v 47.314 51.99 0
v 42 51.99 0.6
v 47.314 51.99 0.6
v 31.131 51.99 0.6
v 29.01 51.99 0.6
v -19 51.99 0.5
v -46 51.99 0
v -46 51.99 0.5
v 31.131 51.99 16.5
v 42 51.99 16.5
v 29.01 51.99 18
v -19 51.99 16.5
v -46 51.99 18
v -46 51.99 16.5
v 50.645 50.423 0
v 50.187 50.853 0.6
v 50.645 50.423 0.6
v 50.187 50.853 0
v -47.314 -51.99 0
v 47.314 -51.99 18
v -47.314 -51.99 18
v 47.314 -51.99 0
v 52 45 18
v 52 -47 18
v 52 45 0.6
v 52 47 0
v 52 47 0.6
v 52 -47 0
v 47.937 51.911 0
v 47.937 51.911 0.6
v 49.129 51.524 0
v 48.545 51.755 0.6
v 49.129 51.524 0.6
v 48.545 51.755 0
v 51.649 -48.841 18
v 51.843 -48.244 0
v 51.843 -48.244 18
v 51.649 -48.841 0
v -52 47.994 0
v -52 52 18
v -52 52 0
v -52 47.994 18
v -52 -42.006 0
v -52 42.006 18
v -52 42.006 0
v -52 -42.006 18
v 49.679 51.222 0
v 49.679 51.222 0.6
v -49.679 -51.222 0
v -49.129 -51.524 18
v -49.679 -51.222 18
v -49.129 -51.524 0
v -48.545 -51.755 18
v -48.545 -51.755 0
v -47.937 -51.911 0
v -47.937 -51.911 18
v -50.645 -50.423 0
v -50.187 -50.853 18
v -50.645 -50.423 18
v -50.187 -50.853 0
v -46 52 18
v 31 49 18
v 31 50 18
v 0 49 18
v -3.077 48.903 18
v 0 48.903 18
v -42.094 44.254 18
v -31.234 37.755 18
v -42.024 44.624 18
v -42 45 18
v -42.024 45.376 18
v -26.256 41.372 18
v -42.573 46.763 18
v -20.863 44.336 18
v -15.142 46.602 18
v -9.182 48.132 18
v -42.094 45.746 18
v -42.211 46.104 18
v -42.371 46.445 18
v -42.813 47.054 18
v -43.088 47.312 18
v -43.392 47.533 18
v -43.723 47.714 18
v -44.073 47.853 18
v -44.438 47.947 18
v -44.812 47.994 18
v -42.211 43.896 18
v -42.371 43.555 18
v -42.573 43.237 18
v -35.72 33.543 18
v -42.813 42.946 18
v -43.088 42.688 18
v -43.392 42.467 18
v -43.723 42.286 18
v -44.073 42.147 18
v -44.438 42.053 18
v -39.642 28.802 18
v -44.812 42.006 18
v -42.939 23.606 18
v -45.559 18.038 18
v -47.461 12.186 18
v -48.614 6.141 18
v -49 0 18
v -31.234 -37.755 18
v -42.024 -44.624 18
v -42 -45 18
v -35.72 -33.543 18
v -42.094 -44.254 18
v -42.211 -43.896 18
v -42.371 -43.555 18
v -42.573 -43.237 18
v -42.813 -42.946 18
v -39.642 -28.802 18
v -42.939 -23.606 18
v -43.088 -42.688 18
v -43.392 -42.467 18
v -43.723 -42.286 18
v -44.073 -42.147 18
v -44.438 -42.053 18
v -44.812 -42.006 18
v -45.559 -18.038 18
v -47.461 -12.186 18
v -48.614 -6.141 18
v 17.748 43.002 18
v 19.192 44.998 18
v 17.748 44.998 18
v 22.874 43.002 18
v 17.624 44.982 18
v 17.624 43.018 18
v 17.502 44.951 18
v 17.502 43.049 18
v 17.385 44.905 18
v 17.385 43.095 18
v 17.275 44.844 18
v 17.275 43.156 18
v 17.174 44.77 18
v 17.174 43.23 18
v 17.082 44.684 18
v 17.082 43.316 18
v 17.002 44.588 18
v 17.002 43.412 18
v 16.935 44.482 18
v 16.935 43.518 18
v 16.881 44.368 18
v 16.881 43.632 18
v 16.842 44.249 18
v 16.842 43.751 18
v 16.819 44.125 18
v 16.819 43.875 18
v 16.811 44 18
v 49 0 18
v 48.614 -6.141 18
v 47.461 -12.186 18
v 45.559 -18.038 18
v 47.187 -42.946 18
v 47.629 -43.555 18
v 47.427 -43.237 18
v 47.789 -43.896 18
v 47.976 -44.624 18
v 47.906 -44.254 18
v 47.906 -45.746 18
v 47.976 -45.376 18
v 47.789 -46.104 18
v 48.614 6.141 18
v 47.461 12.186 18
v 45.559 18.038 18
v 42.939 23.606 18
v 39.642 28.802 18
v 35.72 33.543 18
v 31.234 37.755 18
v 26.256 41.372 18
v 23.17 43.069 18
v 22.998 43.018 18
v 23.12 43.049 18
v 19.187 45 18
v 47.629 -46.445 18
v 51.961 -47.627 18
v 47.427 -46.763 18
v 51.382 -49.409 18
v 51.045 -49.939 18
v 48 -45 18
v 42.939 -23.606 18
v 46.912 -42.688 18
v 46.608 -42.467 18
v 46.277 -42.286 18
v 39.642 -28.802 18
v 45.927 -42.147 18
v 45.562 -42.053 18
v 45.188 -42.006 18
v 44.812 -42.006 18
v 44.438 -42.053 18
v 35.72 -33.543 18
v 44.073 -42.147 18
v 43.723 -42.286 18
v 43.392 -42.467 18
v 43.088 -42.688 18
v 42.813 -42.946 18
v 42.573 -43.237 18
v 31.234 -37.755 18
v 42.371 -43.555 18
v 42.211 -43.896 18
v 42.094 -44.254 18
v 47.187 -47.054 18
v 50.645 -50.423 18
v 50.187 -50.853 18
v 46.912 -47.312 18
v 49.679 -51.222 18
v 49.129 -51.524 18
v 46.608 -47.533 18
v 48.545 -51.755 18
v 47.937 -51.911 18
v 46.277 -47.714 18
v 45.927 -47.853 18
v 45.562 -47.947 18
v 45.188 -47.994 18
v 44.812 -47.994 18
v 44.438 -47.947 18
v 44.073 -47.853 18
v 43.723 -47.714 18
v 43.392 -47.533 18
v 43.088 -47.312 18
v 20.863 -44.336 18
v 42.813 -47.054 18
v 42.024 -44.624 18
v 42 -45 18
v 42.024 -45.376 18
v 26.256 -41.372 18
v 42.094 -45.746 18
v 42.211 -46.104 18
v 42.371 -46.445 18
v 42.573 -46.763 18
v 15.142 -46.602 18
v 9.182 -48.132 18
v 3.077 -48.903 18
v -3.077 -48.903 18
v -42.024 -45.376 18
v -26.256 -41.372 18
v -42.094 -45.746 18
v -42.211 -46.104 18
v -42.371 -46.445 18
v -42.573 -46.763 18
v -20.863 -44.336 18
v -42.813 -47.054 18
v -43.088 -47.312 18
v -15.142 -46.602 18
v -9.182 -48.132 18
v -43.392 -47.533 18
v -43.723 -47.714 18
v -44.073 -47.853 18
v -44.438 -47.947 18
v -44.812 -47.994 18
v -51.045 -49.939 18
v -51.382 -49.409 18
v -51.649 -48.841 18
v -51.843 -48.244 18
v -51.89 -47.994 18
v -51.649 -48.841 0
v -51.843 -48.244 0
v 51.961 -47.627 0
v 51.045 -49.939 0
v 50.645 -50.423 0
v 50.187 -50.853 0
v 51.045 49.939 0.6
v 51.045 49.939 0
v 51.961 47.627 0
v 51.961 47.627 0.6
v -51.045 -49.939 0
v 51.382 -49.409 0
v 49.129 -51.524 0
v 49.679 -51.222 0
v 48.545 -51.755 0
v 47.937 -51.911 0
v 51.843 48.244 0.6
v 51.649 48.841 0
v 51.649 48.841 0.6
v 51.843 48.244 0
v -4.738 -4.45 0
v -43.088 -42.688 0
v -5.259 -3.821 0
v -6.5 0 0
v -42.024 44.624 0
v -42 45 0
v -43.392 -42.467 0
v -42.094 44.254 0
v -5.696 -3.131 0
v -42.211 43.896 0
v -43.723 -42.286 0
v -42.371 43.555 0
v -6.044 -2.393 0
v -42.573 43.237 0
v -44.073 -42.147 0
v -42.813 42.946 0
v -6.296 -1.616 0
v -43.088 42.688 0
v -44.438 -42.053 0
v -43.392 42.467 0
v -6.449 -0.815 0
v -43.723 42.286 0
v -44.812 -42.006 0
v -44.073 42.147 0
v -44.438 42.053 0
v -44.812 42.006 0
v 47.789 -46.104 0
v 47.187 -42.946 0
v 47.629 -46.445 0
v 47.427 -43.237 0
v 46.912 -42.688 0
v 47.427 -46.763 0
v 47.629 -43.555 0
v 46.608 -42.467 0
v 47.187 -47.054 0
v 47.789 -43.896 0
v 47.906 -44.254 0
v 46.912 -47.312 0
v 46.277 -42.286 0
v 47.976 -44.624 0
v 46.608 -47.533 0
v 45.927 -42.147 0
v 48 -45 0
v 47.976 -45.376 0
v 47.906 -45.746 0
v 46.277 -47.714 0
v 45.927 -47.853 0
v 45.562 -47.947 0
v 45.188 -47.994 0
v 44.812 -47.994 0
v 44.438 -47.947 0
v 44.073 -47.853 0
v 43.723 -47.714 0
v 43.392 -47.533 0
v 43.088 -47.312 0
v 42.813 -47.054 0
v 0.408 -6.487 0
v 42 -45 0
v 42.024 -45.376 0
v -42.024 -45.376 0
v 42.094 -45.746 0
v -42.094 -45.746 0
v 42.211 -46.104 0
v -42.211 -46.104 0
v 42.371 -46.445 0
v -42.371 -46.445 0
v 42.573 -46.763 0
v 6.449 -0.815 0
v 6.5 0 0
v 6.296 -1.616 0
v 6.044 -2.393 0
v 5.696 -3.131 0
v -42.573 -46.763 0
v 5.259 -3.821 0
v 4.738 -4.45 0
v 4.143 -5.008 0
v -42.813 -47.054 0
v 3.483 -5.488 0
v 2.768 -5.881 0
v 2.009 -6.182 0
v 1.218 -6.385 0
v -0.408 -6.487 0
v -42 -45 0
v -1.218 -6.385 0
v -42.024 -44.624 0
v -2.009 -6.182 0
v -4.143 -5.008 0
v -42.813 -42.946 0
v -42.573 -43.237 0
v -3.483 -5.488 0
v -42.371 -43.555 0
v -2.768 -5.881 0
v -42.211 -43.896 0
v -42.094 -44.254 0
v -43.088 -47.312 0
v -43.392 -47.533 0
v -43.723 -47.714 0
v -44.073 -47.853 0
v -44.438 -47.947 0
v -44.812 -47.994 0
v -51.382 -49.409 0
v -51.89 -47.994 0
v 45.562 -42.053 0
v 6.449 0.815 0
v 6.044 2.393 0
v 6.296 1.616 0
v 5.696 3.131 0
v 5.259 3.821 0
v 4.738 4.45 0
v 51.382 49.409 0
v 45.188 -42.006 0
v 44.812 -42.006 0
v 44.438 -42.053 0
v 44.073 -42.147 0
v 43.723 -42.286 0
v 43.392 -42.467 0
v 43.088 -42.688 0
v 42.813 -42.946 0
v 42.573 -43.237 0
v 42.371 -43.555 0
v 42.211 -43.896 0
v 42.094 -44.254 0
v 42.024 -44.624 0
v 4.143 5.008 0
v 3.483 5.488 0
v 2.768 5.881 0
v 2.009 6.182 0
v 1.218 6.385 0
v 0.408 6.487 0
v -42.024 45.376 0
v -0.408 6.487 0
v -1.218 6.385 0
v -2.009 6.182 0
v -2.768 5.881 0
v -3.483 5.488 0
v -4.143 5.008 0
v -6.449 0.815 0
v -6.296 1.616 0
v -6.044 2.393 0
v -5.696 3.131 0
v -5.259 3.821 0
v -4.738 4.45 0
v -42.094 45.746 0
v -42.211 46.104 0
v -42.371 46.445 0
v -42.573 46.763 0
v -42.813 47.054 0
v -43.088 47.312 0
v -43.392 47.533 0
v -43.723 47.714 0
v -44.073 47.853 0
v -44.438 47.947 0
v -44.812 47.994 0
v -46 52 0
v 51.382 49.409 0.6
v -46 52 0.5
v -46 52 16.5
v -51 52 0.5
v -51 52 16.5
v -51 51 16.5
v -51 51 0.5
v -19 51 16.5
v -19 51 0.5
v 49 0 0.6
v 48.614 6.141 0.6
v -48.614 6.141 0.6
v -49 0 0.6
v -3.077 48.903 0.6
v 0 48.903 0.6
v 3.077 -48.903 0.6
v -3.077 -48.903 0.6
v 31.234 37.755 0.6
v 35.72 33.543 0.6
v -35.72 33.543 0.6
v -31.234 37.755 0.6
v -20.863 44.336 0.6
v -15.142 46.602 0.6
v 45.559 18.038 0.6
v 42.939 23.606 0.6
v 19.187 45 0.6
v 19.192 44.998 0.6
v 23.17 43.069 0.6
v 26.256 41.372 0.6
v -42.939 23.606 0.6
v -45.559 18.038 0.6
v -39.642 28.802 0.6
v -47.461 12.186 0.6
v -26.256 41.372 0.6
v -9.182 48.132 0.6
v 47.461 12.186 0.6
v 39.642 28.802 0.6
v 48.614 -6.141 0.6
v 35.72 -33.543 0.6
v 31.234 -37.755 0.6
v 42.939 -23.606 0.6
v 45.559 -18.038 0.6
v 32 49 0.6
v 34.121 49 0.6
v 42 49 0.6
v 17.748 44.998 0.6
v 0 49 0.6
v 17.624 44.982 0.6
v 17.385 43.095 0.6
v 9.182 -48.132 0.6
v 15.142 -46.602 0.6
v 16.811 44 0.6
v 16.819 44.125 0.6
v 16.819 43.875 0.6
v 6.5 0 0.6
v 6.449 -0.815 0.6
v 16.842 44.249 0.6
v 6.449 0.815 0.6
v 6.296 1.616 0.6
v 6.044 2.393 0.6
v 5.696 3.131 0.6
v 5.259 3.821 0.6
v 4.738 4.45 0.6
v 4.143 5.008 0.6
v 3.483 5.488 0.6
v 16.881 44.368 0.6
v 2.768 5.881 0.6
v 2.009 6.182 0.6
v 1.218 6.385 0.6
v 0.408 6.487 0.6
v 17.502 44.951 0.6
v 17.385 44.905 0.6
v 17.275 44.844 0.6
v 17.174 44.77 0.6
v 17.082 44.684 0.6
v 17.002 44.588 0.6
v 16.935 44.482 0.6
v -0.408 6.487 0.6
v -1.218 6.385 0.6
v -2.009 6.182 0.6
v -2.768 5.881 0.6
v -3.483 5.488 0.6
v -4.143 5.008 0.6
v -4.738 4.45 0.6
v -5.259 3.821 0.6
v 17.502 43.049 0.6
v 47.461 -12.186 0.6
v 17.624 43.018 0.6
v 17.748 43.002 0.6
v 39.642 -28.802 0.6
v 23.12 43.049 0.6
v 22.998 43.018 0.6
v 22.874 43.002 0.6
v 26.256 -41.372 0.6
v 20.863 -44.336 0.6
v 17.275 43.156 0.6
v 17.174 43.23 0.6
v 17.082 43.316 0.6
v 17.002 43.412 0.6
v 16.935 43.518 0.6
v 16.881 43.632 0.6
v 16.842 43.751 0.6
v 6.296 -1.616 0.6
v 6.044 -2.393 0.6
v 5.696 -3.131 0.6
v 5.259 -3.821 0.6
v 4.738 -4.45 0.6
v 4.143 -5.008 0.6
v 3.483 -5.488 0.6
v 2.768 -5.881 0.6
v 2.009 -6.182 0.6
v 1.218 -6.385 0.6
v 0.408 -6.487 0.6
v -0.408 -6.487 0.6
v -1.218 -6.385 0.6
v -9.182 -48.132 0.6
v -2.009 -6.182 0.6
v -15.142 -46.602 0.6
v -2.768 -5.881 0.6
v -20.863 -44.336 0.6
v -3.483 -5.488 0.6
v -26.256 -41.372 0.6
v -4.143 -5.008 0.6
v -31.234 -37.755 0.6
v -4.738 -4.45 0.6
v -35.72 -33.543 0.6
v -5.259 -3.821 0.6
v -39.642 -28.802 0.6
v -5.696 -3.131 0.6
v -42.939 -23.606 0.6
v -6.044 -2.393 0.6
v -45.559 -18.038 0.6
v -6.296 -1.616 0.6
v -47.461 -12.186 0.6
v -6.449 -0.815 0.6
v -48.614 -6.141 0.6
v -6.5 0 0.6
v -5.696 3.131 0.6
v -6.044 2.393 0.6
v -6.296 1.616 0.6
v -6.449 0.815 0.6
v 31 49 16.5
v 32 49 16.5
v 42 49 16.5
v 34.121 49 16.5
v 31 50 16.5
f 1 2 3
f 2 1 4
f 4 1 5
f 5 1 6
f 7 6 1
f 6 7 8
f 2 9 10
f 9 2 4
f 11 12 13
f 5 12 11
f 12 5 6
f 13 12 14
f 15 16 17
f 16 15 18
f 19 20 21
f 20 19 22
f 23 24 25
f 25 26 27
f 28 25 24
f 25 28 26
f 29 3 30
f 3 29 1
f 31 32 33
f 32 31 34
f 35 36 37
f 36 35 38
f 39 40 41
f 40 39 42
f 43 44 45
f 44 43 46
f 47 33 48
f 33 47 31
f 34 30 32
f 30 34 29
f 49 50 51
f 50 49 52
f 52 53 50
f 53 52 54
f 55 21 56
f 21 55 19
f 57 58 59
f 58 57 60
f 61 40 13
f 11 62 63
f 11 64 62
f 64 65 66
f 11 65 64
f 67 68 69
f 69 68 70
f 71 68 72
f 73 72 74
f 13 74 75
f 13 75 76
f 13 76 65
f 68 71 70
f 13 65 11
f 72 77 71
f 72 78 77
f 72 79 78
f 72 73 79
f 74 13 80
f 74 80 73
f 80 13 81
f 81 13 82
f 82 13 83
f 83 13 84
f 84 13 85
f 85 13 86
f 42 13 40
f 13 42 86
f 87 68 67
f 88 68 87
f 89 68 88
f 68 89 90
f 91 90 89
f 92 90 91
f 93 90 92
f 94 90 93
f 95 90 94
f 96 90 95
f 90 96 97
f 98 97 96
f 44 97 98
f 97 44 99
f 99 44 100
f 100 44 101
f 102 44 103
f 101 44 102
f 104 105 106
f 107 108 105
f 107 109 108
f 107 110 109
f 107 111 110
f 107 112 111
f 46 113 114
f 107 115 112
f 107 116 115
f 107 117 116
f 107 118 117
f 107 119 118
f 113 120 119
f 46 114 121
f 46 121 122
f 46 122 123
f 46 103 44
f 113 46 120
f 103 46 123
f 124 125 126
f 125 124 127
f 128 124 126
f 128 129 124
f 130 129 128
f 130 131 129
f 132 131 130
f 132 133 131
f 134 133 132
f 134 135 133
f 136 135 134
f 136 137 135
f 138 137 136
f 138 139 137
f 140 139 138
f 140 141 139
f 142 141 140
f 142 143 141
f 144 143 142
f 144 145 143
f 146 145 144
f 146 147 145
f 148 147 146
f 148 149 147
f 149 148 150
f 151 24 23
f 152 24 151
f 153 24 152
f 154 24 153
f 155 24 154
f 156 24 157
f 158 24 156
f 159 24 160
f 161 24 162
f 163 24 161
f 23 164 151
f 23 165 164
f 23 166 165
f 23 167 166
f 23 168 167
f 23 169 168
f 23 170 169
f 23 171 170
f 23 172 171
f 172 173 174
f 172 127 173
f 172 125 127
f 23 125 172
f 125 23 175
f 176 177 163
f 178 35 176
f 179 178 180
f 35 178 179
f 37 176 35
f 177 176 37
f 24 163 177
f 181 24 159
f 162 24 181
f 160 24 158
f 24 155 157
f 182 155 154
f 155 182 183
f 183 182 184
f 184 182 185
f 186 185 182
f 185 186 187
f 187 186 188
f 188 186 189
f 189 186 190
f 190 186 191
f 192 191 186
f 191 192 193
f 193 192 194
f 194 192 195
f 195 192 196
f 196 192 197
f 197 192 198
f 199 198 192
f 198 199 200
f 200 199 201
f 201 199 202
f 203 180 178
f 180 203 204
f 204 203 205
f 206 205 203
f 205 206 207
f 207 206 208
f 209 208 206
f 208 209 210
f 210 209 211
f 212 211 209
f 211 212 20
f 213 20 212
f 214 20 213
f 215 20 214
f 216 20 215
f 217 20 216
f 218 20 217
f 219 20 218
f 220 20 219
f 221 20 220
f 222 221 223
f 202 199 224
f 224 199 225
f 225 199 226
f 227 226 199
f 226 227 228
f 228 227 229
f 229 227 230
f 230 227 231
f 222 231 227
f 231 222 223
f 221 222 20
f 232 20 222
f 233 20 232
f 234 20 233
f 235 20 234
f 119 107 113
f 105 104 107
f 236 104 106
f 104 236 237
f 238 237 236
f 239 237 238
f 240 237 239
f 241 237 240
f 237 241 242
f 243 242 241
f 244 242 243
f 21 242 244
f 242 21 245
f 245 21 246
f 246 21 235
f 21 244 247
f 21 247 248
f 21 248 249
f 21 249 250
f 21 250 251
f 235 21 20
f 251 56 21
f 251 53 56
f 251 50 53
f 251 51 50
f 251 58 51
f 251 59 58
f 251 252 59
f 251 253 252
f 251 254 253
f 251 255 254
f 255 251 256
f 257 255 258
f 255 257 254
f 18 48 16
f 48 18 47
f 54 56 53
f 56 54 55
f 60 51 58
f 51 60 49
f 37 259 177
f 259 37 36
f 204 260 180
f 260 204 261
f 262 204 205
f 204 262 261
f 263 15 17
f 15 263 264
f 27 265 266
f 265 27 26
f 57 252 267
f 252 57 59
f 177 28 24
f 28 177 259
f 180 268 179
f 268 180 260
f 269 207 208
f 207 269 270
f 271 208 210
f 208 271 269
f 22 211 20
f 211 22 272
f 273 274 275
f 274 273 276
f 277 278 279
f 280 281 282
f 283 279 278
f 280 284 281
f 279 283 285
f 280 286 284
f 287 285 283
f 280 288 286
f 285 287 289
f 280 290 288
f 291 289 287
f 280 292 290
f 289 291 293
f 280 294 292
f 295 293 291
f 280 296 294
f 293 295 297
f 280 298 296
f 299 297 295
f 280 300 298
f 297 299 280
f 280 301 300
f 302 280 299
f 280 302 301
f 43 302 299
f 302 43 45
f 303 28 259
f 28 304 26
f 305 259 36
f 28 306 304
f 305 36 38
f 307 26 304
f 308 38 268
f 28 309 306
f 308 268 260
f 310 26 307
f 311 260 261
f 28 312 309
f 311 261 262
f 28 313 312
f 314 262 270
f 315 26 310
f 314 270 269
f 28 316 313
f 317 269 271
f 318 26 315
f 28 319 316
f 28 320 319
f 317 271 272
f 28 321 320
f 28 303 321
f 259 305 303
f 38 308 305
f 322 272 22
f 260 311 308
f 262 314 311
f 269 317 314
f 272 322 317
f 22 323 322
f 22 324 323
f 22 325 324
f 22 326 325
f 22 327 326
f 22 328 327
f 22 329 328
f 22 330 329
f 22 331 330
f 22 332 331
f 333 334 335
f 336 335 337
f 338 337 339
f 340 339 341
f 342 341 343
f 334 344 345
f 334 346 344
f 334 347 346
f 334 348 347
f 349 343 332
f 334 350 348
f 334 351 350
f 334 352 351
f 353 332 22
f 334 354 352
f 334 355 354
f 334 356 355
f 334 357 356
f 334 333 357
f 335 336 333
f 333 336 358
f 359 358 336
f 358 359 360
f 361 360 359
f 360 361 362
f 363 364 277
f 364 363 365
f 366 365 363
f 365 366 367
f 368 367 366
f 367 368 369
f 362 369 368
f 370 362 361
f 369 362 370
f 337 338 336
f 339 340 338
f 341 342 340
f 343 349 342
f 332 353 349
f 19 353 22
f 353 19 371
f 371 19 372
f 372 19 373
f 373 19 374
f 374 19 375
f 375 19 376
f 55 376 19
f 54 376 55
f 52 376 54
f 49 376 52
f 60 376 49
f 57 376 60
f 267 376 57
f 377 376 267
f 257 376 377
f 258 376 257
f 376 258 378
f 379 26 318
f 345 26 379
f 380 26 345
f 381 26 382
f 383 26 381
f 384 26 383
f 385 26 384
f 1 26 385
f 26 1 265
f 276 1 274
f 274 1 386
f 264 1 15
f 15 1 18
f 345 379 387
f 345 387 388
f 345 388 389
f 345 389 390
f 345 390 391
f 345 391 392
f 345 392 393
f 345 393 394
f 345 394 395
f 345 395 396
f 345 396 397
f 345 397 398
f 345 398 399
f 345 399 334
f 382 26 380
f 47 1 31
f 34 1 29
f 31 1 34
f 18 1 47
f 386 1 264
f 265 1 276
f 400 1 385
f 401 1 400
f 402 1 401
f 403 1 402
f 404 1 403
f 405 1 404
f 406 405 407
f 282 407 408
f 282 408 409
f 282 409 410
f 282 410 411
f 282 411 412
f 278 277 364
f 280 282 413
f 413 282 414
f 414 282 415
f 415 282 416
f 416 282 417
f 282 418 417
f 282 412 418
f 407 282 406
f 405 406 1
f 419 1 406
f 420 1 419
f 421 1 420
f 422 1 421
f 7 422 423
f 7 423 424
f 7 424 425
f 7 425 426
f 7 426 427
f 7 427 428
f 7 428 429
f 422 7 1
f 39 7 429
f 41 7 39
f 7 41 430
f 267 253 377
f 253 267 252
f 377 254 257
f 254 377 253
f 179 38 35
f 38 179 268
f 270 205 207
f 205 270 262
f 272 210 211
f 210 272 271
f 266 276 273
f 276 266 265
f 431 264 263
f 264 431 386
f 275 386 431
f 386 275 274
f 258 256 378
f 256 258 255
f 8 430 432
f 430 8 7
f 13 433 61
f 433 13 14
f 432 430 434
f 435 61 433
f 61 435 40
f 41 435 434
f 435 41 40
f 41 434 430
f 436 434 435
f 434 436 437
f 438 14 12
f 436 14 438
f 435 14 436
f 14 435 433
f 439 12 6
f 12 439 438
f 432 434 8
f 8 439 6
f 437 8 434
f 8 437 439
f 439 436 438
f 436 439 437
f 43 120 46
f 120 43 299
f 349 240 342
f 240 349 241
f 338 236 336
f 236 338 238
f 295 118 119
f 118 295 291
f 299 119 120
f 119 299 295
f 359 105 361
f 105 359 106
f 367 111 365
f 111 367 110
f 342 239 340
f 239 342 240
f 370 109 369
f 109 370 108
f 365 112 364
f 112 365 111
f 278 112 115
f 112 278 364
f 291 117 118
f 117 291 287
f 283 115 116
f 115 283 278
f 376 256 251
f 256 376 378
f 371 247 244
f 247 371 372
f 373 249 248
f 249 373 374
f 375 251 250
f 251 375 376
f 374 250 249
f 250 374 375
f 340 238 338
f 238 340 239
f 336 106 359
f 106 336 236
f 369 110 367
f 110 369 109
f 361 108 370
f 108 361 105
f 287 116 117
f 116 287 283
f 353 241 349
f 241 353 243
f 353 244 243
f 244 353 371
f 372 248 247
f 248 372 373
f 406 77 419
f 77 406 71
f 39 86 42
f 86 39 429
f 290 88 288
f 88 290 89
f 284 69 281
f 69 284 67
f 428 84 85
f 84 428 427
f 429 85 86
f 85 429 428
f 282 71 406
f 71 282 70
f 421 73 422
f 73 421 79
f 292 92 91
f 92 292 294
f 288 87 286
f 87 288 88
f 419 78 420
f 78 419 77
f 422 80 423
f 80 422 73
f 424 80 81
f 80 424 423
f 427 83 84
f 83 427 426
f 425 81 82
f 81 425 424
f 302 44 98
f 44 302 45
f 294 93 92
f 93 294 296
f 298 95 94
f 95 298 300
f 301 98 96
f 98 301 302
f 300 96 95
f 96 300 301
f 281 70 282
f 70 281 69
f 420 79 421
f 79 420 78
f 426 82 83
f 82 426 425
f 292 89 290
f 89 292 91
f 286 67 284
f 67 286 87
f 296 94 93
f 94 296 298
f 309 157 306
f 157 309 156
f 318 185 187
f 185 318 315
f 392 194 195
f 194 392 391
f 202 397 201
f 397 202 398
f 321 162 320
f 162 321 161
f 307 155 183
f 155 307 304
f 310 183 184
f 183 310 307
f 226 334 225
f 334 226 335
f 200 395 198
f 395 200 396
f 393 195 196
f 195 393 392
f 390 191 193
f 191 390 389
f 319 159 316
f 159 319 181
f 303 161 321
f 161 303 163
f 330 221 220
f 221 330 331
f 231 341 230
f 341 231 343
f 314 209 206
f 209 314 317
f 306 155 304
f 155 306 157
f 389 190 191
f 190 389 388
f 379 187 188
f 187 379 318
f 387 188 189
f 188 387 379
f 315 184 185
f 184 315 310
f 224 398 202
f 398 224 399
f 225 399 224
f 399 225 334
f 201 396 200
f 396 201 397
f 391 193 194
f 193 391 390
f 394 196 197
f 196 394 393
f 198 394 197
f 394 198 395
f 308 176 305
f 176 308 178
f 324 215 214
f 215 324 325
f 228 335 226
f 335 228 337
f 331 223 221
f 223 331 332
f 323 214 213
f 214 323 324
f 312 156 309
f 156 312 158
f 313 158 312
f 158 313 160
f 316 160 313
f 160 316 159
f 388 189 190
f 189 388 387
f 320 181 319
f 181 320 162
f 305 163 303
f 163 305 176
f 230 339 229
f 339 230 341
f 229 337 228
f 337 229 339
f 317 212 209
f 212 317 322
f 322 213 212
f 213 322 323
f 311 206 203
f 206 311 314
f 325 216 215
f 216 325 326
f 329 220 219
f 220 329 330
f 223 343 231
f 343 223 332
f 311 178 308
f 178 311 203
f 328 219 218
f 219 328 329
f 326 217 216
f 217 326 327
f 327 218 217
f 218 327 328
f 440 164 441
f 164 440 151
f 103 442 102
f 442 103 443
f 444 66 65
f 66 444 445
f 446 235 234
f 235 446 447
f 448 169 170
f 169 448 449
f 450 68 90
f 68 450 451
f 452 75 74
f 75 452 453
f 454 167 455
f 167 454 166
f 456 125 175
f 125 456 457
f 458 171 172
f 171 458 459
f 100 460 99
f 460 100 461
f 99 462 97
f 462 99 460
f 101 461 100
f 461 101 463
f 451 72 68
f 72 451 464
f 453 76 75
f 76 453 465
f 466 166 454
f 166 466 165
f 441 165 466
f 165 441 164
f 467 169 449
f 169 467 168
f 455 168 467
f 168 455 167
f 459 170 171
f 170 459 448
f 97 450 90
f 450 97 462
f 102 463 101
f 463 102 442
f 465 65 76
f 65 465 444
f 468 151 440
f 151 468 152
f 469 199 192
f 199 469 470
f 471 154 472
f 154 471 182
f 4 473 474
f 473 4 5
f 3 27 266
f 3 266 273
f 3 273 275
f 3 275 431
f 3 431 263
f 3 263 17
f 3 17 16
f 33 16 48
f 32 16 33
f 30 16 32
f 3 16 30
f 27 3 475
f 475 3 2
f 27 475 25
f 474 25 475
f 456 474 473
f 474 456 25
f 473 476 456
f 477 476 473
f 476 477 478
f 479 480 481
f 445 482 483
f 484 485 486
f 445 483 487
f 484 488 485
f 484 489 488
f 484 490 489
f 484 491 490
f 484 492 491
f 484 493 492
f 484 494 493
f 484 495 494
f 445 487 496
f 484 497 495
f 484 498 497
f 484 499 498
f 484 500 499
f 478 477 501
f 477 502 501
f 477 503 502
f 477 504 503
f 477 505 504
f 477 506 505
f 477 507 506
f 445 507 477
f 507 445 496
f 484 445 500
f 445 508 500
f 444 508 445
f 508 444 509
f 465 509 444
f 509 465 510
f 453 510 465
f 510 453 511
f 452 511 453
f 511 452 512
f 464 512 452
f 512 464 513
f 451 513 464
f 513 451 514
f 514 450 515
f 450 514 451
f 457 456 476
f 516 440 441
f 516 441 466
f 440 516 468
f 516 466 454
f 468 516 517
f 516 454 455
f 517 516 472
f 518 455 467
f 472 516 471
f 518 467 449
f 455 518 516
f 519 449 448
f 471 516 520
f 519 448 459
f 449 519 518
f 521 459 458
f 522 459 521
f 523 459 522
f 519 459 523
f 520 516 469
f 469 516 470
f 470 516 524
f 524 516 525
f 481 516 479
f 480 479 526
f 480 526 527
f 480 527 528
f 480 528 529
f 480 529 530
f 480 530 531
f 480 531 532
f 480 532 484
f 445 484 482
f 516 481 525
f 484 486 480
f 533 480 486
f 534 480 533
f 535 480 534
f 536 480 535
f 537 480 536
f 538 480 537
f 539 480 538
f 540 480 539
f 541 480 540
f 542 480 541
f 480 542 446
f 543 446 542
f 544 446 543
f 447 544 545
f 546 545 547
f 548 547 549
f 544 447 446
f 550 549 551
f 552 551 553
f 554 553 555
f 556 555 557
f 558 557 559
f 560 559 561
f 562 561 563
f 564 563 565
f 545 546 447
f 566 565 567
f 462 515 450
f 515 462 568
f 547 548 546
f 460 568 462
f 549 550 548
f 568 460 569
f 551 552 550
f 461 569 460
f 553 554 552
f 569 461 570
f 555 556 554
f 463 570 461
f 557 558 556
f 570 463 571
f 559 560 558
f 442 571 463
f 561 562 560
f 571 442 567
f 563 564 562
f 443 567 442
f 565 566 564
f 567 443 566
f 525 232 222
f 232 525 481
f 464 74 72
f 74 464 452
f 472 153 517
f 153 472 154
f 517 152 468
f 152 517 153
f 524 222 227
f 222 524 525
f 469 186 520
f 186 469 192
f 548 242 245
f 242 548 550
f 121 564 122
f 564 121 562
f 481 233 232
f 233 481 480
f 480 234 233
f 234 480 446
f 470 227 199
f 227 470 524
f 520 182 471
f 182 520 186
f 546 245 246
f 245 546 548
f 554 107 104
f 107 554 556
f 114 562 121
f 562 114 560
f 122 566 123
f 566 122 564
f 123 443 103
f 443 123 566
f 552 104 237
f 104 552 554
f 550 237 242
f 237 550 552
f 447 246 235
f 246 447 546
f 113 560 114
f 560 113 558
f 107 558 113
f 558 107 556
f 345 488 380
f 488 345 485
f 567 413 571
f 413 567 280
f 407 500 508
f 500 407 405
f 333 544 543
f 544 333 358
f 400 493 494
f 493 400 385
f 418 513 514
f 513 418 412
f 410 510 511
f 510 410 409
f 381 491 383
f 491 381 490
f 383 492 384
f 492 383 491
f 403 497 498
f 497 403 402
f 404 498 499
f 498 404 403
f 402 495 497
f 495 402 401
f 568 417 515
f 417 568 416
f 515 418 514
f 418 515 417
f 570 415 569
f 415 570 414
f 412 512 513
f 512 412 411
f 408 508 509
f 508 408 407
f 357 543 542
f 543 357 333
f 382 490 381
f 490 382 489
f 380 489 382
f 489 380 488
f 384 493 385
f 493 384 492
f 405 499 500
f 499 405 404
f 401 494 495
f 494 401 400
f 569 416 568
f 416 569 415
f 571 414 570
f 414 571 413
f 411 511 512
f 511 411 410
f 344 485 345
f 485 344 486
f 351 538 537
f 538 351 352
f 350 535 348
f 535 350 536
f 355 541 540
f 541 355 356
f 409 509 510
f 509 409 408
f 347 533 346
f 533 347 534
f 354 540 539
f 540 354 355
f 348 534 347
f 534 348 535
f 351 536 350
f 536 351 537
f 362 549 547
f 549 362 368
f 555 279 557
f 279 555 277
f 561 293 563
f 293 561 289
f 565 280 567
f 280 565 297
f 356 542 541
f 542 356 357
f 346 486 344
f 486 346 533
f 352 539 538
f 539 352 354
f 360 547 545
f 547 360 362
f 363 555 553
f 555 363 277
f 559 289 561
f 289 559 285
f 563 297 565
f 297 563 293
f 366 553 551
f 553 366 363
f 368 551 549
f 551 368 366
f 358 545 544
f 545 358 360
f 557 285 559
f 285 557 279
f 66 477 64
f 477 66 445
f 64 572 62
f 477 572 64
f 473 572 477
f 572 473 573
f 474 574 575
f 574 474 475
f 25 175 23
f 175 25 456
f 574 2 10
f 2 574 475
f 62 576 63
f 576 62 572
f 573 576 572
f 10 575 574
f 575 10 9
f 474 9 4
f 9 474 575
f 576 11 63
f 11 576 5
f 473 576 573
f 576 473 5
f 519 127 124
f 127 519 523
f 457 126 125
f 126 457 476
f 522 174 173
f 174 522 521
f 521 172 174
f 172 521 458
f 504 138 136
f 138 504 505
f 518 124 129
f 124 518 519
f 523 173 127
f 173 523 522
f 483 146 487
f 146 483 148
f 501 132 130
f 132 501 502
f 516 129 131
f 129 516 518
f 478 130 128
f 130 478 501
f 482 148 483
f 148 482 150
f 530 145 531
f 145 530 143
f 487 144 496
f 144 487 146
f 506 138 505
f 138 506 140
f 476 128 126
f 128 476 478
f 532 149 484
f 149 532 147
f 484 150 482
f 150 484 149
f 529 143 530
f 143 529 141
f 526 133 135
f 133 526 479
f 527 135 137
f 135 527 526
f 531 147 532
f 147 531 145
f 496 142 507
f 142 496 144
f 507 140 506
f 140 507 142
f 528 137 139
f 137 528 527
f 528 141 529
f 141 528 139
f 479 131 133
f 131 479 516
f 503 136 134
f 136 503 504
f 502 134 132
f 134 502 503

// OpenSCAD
$fn = 50;


union() {
	difference() {
		union() {
			translate(v = [0, 0, 0]) {
				rotate(a = [0, 0, 0]) {
					hull() {
						translate(v = [-47.0000000000, 47.0000000000, 0]) {
							rotate(a = [0, 0, 0]) {
								translate(v = [0, 0, 0]) {
									rotate(a = [0, 0, 0]) {
										cylinder(h = 18, r = 5);
									}
								}
							}
						}
						translate(v = [47.0000000000, 47.0000000000, 0]) {
							rotate(a = [0, 0, 0]) {
								translate(v = [0, 0, 0]) {
									rotate(a = [0, 0, 0]) {
										cylinder(h = 18, r = 5);
									}
								}
							}
						}
						translate(v = [-47.0000000000, -47.0000000000, 0]) {
							rotate(a = [0, 0, 0]) {
								translate(v = [0, 0, 0]) {
									rotate(a = [0, 0, 0]) {
										cylinder(h = 18, r = 5);
									}
								}
							}
						}
						translate(v = [47.0000000000, -47.0000000000, 0]) {
							rotate(a = [0, 0, 0]) {
								translate(v = [0, 0, 0]) {
									rotate(a = [0, 0, 0]) {
										cylinder(h = 18, r = 5);
									}
								}
							}
						}
					}
				}
			}
			translate(v = [-52.0000000000, 46.0000000000, 0]) {
				rotate(a = [0, 0, 0]) {
					cube(size = [6, 6, 18]);
				}
			}
		}
		union() {
			#translate(v = [-51.0000000000, 51.0000000000, 0.5000000000]) {
				rotate(a = [0, 0, 0]) {
					cube(size = [32, 1, 16]);
				}
			}
			translate(v = [-52.5000000000, -45.0000000000, -125]) {
				rotate(a = [0, 0, 0]) {
					hull() {
						translate(v = [7.5000000000, 0, 0]) {
							rotate(a = [0, 0, 0]) {
								translate(v = [0, 0, 0]) {
									rotate(a = [0, 0, 0]) {
										cylinder(h = 250, r = 3.0000000000);
									}
								}
							}
						}
						translate(v = [-7.5000000000, 0, 0]) {
							rotate(a = [0, 0, 0]) {
								translate(v = [0, 0, 0]) {
									rotate(a = [0, 0, 0]) {
										cylinder(h = 250, r = 3.0000000000);
									}
								}
							}
						}
					}
				}
			}
			translate(v = [-52.5000000000, 45.0000000000, -125]) {
				rotate(a = [0, 0, 0]) {
					hull() {
						translate(v = [7.5000000000, 0, 0]) {
							rotate(a = [0, 0, 0]) {
								translate(v = [0, 0, 0]) {
									rotate(a = [0, 0, 0]) {
										cylinder(h = 250, r = 3.0000000000);
									}
								}
							}
						}
						translate(v = [-7.5000000000, 0, 0]) {
							rotate(a = [0, 0, 0]) {
								translate(v = [0, 0, 0]) {
									rotate(a = [0, 0, 0]) {
										cylinder(h = 250, r = 3.0000000000);
									}
								}
							}
						}
					}
				}
			}
			translate(v = [45.0000000000, -45.0000000000, -125.0000000000]) {
				rotate(a = [0, 0, 0]) {
					cylinder(h = 250, r = 3.0000000000);
				}
			}
			translate(v = [0, 0, 0.6000000000]) {
				rotate(a = [0, 0, 0]) {
					cylinder(h = 20.4000000000, r = 49.0000000000);
				}
			}
			translate(v = [0, 0, -9.0000000000]) {
				rotate(a = [0, 0, 0]) {
					cylinder(h = 18, r = 6.5000000000);
				}
			}
			translate(v = [0.0000000000, 45.0000000000, 0.6000000000]) {
				rotate(a = [0, 0, 0]) {
					cube(size = [52.0000000000, 4, 20.4000000000]);
				}
			}
			translate(v = [42.0000000000, 45.0000000000, 0.6000000000]) {
				rotate(a = [0, 0, 0]) {
					cube(size = [10, 7, 20.4000000000]);
				}
			}
			translate(v = [31.0000000000, 45.0000000000, 16.5000000000]) {
				rotate(a = [0, 0, 0]) {
					cube(size = [21, 7, 1.5000000000]);
				}
			}
			translate(v = [28.2500000000, 52.7500000000, 0.6000000000]) {
				rotate(a = [0, 0, -45]) {
					cube(size = [7.5000000000, 1.5000000000, 20.4000000000]);
				}
			}
			translate(v = [11.0610000000, 43.0000000000, 0.6000000000]) {
				rotate(a = [0, 0, 0]) {
					cube(size = [7.5000000000, 2, 17.4000000000]);
				}
			}
		}
	}
	union() {
		translate(v = [20.3110000000, 44.0000000000, 0]) {
			rotate(a = [0, 0, 0]) {
				hull() {
					translate(v = [2.5000000000, 0, 0]) {
						rotate(a = [0, 0, 0]) {
							#translate(v = [0, 0, 0]) {
								rotate(a = [0, 0, 0]) {
									cylinder(h = 18, r = 1.0000000000);
								}
							}
						}
					}
					translate(v = [-2.5000000000, 0, 0]) {
						rotate(a = [0, 0, 0]) {
							#translate(v = [0, 0, 0]) {
								rotate(a = [0, 0, 0]) {
									cylinder(h = 18, r = 1.0000000000);
								}
							}
						}
					}
				}
			}
		}
	}
}
